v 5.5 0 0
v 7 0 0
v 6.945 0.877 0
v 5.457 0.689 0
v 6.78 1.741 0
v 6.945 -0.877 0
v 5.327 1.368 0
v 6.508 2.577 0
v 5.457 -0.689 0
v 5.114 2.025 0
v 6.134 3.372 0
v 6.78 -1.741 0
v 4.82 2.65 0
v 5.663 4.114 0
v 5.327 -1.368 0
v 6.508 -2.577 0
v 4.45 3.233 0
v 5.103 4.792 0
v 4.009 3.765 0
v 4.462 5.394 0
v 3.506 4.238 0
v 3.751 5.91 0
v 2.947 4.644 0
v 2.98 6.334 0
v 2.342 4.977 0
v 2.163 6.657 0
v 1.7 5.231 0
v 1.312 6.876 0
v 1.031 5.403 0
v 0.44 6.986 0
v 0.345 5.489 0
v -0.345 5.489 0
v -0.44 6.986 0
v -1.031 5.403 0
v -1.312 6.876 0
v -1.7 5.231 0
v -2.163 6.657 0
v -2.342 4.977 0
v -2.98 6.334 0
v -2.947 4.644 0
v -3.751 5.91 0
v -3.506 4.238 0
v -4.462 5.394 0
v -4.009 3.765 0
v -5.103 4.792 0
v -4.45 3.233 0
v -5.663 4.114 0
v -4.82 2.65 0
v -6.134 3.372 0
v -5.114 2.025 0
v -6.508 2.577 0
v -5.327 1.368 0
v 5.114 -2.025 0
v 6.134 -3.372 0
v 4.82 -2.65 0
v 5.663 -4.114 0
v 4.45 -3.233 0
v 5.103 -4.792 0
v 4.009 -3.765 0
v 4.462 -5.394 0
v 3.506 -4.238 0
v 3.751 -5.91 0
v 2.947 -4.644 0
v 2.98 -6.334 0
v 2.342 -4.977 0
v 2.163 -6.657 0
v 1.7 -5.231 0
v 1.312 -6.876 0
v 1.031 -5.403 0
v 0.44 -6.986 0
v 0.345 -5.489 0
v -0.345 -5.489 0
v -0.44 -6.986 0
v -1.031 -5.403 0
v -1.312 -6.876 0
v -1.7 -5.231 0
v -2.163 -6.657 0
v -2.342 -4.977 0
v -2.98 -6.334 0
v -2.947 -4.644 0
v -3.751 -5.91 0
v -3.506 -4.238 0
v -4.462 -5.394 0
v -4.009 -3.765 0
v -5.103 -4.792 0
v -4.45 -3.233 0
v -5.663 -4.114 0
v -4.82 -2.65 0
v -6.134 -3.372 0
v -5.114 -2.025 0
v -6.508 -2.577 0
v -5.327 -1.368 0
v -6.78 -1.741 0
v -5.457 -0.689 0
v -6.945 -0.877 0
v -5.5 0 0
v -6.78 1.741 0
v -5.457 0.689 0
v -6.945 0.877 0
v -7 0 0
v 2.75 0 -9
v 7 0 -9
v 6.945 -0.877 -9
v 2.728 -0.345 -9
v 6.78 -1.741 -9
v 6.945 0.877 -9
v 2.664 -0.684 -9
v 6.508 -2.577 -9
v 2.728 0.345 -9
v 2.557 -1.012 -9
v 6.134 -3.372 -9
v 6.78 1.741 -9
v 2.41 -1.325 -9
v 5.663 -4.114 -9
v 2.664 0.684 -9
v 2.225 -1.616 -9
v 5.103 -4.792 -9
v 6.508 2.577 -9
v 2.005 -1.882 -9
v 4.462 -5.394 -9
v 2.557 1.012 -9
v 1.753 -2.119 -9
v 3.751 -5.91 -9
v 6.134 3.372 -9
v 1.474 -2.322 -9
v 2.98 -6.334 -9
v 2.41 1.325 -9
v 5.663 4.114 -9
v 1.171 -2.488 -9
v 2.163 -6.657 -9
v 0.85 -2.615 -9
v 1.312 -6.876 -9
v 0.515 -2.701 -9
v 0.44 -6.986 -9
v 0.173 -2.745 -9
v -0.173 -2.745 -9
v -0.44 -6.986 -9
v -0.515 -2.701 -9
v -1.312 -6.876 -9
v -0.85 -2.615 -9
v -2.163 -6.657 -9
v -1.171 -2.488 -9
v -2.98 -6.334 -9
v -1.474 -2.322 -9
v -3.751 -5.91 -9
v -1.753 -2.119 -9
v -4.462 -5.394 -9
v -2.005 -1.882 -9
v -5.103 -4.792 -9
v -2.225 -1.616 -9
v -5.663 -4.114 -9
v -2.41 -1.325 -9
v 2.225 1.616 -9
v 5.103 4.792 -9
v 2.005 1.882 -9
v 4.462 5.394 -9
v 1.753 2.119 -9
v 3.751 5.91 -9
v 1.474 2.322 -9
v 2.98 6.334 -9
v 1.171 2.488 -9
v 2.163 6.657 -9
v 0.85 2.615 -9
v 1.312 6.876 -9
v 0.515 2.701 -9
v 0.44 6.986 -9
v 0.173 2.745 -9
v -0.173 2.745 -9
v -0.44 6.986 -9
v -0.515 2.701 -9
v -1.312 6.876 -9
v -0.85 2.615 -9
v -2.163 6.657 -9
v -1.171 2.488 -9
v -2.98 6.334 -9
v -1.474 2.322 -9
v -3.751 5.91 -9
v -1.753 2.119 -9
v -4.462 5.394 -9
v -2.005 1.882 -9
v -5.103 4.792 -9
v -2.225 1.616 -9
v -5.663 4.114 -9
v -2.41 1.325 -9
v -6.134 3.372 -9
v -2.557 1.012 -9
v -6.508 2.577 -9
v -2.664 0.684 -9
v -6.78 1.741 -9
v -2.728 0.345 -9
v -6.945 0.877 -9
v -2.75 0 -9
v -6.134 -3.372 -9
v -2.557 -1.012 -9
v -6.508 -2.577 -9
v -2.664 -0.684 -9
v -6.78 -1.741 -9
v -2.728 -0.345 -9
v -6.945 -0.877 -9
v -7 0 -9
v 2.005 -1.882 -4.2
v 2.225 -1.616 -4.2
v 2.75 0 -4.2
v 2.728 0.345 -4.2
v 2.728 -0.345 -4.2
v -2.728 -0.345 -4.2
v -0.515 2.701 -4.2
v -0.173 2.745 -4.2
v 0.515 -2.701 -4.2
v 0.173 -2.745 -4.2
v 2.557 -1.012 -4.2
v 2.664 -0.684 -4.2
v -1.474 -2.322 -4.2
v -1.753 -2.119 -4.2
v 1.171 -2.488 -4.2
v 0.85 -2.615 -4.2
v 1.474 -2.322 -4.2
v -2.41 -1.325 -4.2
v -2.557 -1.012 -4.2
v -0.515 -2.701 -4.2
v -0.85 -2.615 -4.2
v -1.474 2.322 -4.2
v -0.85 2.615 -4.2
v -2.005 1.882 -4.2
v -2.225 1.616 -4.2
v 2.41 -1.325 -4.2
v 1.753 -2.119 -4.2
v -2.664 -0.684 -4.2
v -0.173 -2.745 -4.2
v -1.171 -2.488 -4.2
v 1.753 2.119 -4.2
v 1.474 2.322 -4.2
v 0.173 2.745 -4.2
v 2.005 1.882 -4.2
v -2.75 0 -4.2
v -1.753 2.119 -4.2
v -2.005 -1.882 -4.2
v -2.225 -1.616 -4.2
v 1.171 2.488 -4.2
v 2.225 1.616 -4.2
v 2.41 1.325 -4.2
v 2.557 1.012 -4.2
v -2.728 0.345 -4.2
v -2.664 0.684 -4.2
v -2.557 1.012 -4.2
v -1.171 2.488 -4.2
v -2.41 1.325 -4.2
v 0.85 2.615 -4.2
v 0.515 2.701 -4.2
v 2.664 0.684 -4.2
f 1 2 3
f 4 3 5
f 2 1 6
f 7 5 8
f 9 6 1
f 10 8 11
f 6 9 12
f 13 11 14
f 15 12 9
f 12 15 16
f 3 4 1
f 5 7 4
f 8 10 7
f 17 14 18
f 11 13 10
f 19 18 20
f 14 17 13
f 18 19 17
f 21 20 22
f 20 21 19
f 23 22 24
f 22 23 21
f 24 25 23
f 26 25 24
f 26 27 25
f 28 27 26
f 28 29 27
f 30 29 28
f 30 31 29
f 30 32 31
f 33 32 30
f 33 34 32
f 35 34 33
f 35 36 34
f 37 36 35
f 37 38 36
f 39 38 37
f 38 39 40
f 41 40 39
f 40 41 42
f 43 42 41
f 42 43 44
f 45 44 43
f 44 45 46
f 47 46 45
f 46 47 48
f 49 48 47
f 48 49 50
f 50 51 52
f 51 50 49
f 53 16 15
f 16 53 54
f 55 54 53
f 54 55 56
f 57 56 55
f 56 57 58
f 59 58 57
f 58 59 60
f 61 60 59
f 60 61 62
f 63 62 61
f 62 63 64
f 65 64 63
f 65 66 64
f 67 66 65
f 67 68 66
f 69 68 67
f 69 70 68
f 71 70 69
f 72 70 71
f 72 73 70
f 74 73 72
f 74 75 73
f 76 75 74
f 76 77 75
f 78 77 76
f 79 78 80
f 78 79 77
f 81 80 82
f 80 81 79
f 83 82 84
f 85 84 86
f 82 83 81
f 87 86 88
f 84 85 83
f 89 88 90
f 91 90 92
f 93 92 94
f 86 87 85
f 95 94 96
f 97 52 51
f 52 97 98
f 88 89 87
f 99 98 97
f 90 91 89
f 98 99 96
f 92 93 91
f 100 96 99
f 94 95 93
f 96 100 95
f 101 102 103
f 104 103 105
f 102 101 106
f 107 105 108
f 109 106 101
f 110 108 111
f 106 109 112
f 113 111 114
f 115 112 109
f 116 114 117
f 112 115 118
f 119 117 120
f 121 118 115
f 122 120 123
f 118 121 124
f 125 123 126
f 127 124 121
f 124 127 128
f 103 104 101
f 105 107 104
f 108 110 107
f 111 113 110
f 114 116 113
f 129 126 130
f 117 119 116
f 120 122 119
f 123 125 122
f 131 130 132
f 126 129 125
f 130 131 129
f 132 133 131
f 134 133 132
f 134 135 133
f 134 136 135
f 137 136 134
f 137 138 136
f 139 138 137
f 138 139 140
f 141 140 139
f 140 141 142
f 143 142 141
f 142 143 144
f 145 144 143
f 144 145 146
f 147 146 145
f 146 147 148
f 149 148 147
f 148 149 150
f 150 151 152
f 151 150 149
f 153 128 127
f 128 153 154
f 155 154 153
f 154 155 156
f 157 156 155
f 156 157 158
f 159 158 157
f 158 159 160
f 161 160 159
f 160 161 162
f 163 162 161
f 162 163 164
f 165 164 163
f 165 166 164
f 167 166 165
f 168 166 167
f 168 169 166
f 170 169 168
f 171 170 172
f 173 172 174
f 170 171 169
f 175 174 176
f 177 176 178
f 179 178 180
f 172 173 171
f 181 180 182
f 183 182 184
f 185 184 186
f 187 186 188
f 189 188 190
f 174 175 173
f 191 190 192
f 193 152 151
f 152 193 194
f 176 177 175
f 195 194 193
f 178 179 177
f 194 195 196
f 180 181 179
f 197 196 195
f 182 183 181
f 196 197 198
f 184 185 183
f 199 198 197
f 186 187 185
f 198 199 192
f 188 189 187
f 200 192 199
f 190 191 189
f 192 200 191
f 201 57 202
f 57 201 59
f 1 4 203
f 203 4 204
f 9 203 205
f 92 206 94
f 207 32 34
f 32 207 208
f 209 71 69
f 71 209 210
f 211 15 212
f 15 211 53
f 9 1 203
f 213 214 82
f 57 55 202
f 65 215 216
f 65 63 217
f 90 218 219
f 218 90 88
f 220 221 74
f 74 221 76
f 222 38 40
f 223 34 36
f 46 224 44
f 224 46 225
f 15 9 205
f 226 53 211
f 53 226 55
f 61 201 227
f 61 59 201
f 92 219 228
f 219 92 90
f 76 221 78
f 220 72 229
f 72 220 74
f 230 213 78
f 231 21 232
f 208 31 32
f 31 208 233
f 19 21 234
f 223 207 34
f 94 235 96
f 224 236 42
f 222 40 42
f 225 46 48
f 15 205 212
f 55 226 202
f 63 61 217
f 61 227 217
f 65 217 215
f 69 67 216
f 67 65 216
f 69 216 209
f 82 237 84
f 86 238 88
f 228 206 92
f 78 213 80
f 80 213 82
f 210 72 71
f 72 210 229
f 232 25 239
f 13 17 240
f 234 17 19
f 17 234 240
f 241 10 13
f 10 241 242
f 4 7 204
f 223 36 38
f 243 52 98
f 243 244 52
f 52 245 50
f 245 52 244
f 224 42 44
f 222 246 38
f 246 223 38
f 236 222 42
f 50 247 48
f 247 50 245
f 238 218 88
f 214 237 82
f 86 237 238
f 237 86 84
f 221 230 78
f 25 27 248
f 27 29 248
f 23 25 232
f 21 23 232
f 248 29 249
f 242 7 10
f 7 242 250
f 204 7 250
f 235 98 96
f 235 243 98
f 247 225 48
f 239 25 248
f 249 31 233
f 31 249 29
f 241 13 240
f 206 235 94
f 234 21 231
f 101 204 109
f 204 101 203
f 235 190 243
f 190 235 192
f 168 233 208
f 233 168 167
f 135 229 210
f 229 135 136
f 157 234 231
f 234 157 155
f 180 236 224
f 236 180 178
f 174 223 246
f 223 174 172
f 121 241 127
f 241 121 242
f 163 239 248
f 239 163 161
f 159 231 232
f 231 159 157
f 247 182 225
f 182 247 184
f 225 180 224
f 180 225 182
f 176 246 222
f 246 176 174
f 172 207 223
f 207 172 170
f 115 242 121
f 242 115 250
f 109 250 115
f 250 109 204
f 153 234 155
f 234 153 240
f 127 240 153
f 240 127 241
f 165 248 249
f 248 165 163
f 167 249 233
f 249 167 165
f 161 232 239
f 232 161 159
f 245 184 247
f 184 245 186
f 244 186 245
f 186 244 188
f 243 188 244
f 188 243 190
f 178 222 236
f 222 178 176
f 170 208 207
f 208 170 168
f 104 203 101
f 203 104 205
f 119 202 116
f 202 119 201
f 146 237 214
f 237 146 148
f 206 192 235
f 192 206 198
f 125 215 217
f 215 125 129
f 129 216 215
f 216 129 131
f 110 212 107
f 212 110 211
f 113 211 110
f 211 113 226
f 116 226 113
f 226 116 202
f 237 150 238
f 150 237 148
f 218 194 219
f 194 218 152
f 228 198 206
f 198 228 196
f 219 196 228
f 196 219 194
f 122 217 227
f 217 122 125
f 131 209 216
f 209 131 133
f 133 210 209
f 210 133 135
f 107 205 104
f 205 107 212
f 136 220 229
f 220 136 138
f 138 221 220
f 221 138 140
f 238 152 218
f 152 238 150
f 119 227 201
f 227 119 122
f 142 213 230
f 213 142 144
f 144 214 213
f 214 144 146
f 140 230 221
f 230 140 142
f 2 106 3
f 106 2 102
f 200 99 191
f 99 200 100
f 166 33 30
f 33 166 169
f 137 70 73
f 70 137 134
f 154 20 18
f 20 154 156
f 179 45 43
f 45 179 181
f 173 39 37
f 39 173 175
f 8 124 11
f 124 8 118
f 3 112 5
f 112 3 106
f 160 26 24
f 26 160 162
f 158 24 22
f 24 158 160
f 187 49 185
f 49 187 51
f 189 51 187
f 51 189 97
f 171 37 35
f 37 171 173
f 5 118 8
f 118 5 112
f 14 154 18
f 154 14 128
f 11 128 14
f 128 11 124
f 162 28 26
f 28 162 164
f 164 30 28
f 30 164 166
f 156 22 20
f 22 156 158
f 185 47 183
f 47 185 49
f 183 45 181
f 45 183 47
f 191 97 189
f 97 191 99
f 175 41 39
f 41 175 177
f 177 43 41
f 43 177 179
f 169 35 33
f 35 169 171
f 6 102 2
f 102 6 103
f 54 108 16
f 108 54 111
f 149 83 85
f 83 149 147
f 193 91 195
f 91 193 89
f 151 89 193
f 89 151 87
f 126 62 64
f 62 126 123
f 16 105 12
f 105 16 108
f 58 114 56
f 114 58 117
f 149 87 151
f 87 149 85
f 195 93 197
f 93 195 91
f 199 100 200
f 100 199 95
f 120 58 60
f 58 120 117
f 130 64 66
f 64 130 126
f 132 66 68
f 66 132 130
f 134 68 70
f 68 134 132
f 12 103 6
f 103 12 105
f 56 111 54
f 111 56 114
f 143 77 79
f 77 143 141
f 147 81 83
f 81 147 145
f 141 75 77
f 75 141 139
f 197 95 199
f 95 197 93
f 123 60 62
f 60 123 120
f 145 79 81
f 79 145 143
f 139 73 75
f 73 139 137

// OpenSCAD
$fn = 50;


difference() {
	union() {
		translate(v = [0, 0, -9.0000000000]) {
			cylinder(h = 9, r = 7.0000000000);
		}
		cylinder(h = 0, r = 17.0000000000);
	}
	union() {
		translate(v = [0, 0, 0]) {
			rotate(a = [0, 0, 0]) {
				difference() {
					union() {
						#translate(v = [0, 0, -9.0000000000]) {
							cylinder(h = 9, r = 2.2500000000);
						}
						#translate(v = [0, 0, -4.2000000000]) {
							cylinder(h = 4.2000000000, r = 7.0000000000, r1 = 2.7500000000, r2 = 5.5000000000);
						}
						#translate(v = [0, 0, -9.0000000000]) {
							cylinder(h = 9, r = 2.7500000000);
						}
						#translate(v = [0, 0, -9.0000000000]) {
							cylinder(h = 9, r = 2.2500000000);
						}
					}
					union();
				}
			}
		}
	}
}
